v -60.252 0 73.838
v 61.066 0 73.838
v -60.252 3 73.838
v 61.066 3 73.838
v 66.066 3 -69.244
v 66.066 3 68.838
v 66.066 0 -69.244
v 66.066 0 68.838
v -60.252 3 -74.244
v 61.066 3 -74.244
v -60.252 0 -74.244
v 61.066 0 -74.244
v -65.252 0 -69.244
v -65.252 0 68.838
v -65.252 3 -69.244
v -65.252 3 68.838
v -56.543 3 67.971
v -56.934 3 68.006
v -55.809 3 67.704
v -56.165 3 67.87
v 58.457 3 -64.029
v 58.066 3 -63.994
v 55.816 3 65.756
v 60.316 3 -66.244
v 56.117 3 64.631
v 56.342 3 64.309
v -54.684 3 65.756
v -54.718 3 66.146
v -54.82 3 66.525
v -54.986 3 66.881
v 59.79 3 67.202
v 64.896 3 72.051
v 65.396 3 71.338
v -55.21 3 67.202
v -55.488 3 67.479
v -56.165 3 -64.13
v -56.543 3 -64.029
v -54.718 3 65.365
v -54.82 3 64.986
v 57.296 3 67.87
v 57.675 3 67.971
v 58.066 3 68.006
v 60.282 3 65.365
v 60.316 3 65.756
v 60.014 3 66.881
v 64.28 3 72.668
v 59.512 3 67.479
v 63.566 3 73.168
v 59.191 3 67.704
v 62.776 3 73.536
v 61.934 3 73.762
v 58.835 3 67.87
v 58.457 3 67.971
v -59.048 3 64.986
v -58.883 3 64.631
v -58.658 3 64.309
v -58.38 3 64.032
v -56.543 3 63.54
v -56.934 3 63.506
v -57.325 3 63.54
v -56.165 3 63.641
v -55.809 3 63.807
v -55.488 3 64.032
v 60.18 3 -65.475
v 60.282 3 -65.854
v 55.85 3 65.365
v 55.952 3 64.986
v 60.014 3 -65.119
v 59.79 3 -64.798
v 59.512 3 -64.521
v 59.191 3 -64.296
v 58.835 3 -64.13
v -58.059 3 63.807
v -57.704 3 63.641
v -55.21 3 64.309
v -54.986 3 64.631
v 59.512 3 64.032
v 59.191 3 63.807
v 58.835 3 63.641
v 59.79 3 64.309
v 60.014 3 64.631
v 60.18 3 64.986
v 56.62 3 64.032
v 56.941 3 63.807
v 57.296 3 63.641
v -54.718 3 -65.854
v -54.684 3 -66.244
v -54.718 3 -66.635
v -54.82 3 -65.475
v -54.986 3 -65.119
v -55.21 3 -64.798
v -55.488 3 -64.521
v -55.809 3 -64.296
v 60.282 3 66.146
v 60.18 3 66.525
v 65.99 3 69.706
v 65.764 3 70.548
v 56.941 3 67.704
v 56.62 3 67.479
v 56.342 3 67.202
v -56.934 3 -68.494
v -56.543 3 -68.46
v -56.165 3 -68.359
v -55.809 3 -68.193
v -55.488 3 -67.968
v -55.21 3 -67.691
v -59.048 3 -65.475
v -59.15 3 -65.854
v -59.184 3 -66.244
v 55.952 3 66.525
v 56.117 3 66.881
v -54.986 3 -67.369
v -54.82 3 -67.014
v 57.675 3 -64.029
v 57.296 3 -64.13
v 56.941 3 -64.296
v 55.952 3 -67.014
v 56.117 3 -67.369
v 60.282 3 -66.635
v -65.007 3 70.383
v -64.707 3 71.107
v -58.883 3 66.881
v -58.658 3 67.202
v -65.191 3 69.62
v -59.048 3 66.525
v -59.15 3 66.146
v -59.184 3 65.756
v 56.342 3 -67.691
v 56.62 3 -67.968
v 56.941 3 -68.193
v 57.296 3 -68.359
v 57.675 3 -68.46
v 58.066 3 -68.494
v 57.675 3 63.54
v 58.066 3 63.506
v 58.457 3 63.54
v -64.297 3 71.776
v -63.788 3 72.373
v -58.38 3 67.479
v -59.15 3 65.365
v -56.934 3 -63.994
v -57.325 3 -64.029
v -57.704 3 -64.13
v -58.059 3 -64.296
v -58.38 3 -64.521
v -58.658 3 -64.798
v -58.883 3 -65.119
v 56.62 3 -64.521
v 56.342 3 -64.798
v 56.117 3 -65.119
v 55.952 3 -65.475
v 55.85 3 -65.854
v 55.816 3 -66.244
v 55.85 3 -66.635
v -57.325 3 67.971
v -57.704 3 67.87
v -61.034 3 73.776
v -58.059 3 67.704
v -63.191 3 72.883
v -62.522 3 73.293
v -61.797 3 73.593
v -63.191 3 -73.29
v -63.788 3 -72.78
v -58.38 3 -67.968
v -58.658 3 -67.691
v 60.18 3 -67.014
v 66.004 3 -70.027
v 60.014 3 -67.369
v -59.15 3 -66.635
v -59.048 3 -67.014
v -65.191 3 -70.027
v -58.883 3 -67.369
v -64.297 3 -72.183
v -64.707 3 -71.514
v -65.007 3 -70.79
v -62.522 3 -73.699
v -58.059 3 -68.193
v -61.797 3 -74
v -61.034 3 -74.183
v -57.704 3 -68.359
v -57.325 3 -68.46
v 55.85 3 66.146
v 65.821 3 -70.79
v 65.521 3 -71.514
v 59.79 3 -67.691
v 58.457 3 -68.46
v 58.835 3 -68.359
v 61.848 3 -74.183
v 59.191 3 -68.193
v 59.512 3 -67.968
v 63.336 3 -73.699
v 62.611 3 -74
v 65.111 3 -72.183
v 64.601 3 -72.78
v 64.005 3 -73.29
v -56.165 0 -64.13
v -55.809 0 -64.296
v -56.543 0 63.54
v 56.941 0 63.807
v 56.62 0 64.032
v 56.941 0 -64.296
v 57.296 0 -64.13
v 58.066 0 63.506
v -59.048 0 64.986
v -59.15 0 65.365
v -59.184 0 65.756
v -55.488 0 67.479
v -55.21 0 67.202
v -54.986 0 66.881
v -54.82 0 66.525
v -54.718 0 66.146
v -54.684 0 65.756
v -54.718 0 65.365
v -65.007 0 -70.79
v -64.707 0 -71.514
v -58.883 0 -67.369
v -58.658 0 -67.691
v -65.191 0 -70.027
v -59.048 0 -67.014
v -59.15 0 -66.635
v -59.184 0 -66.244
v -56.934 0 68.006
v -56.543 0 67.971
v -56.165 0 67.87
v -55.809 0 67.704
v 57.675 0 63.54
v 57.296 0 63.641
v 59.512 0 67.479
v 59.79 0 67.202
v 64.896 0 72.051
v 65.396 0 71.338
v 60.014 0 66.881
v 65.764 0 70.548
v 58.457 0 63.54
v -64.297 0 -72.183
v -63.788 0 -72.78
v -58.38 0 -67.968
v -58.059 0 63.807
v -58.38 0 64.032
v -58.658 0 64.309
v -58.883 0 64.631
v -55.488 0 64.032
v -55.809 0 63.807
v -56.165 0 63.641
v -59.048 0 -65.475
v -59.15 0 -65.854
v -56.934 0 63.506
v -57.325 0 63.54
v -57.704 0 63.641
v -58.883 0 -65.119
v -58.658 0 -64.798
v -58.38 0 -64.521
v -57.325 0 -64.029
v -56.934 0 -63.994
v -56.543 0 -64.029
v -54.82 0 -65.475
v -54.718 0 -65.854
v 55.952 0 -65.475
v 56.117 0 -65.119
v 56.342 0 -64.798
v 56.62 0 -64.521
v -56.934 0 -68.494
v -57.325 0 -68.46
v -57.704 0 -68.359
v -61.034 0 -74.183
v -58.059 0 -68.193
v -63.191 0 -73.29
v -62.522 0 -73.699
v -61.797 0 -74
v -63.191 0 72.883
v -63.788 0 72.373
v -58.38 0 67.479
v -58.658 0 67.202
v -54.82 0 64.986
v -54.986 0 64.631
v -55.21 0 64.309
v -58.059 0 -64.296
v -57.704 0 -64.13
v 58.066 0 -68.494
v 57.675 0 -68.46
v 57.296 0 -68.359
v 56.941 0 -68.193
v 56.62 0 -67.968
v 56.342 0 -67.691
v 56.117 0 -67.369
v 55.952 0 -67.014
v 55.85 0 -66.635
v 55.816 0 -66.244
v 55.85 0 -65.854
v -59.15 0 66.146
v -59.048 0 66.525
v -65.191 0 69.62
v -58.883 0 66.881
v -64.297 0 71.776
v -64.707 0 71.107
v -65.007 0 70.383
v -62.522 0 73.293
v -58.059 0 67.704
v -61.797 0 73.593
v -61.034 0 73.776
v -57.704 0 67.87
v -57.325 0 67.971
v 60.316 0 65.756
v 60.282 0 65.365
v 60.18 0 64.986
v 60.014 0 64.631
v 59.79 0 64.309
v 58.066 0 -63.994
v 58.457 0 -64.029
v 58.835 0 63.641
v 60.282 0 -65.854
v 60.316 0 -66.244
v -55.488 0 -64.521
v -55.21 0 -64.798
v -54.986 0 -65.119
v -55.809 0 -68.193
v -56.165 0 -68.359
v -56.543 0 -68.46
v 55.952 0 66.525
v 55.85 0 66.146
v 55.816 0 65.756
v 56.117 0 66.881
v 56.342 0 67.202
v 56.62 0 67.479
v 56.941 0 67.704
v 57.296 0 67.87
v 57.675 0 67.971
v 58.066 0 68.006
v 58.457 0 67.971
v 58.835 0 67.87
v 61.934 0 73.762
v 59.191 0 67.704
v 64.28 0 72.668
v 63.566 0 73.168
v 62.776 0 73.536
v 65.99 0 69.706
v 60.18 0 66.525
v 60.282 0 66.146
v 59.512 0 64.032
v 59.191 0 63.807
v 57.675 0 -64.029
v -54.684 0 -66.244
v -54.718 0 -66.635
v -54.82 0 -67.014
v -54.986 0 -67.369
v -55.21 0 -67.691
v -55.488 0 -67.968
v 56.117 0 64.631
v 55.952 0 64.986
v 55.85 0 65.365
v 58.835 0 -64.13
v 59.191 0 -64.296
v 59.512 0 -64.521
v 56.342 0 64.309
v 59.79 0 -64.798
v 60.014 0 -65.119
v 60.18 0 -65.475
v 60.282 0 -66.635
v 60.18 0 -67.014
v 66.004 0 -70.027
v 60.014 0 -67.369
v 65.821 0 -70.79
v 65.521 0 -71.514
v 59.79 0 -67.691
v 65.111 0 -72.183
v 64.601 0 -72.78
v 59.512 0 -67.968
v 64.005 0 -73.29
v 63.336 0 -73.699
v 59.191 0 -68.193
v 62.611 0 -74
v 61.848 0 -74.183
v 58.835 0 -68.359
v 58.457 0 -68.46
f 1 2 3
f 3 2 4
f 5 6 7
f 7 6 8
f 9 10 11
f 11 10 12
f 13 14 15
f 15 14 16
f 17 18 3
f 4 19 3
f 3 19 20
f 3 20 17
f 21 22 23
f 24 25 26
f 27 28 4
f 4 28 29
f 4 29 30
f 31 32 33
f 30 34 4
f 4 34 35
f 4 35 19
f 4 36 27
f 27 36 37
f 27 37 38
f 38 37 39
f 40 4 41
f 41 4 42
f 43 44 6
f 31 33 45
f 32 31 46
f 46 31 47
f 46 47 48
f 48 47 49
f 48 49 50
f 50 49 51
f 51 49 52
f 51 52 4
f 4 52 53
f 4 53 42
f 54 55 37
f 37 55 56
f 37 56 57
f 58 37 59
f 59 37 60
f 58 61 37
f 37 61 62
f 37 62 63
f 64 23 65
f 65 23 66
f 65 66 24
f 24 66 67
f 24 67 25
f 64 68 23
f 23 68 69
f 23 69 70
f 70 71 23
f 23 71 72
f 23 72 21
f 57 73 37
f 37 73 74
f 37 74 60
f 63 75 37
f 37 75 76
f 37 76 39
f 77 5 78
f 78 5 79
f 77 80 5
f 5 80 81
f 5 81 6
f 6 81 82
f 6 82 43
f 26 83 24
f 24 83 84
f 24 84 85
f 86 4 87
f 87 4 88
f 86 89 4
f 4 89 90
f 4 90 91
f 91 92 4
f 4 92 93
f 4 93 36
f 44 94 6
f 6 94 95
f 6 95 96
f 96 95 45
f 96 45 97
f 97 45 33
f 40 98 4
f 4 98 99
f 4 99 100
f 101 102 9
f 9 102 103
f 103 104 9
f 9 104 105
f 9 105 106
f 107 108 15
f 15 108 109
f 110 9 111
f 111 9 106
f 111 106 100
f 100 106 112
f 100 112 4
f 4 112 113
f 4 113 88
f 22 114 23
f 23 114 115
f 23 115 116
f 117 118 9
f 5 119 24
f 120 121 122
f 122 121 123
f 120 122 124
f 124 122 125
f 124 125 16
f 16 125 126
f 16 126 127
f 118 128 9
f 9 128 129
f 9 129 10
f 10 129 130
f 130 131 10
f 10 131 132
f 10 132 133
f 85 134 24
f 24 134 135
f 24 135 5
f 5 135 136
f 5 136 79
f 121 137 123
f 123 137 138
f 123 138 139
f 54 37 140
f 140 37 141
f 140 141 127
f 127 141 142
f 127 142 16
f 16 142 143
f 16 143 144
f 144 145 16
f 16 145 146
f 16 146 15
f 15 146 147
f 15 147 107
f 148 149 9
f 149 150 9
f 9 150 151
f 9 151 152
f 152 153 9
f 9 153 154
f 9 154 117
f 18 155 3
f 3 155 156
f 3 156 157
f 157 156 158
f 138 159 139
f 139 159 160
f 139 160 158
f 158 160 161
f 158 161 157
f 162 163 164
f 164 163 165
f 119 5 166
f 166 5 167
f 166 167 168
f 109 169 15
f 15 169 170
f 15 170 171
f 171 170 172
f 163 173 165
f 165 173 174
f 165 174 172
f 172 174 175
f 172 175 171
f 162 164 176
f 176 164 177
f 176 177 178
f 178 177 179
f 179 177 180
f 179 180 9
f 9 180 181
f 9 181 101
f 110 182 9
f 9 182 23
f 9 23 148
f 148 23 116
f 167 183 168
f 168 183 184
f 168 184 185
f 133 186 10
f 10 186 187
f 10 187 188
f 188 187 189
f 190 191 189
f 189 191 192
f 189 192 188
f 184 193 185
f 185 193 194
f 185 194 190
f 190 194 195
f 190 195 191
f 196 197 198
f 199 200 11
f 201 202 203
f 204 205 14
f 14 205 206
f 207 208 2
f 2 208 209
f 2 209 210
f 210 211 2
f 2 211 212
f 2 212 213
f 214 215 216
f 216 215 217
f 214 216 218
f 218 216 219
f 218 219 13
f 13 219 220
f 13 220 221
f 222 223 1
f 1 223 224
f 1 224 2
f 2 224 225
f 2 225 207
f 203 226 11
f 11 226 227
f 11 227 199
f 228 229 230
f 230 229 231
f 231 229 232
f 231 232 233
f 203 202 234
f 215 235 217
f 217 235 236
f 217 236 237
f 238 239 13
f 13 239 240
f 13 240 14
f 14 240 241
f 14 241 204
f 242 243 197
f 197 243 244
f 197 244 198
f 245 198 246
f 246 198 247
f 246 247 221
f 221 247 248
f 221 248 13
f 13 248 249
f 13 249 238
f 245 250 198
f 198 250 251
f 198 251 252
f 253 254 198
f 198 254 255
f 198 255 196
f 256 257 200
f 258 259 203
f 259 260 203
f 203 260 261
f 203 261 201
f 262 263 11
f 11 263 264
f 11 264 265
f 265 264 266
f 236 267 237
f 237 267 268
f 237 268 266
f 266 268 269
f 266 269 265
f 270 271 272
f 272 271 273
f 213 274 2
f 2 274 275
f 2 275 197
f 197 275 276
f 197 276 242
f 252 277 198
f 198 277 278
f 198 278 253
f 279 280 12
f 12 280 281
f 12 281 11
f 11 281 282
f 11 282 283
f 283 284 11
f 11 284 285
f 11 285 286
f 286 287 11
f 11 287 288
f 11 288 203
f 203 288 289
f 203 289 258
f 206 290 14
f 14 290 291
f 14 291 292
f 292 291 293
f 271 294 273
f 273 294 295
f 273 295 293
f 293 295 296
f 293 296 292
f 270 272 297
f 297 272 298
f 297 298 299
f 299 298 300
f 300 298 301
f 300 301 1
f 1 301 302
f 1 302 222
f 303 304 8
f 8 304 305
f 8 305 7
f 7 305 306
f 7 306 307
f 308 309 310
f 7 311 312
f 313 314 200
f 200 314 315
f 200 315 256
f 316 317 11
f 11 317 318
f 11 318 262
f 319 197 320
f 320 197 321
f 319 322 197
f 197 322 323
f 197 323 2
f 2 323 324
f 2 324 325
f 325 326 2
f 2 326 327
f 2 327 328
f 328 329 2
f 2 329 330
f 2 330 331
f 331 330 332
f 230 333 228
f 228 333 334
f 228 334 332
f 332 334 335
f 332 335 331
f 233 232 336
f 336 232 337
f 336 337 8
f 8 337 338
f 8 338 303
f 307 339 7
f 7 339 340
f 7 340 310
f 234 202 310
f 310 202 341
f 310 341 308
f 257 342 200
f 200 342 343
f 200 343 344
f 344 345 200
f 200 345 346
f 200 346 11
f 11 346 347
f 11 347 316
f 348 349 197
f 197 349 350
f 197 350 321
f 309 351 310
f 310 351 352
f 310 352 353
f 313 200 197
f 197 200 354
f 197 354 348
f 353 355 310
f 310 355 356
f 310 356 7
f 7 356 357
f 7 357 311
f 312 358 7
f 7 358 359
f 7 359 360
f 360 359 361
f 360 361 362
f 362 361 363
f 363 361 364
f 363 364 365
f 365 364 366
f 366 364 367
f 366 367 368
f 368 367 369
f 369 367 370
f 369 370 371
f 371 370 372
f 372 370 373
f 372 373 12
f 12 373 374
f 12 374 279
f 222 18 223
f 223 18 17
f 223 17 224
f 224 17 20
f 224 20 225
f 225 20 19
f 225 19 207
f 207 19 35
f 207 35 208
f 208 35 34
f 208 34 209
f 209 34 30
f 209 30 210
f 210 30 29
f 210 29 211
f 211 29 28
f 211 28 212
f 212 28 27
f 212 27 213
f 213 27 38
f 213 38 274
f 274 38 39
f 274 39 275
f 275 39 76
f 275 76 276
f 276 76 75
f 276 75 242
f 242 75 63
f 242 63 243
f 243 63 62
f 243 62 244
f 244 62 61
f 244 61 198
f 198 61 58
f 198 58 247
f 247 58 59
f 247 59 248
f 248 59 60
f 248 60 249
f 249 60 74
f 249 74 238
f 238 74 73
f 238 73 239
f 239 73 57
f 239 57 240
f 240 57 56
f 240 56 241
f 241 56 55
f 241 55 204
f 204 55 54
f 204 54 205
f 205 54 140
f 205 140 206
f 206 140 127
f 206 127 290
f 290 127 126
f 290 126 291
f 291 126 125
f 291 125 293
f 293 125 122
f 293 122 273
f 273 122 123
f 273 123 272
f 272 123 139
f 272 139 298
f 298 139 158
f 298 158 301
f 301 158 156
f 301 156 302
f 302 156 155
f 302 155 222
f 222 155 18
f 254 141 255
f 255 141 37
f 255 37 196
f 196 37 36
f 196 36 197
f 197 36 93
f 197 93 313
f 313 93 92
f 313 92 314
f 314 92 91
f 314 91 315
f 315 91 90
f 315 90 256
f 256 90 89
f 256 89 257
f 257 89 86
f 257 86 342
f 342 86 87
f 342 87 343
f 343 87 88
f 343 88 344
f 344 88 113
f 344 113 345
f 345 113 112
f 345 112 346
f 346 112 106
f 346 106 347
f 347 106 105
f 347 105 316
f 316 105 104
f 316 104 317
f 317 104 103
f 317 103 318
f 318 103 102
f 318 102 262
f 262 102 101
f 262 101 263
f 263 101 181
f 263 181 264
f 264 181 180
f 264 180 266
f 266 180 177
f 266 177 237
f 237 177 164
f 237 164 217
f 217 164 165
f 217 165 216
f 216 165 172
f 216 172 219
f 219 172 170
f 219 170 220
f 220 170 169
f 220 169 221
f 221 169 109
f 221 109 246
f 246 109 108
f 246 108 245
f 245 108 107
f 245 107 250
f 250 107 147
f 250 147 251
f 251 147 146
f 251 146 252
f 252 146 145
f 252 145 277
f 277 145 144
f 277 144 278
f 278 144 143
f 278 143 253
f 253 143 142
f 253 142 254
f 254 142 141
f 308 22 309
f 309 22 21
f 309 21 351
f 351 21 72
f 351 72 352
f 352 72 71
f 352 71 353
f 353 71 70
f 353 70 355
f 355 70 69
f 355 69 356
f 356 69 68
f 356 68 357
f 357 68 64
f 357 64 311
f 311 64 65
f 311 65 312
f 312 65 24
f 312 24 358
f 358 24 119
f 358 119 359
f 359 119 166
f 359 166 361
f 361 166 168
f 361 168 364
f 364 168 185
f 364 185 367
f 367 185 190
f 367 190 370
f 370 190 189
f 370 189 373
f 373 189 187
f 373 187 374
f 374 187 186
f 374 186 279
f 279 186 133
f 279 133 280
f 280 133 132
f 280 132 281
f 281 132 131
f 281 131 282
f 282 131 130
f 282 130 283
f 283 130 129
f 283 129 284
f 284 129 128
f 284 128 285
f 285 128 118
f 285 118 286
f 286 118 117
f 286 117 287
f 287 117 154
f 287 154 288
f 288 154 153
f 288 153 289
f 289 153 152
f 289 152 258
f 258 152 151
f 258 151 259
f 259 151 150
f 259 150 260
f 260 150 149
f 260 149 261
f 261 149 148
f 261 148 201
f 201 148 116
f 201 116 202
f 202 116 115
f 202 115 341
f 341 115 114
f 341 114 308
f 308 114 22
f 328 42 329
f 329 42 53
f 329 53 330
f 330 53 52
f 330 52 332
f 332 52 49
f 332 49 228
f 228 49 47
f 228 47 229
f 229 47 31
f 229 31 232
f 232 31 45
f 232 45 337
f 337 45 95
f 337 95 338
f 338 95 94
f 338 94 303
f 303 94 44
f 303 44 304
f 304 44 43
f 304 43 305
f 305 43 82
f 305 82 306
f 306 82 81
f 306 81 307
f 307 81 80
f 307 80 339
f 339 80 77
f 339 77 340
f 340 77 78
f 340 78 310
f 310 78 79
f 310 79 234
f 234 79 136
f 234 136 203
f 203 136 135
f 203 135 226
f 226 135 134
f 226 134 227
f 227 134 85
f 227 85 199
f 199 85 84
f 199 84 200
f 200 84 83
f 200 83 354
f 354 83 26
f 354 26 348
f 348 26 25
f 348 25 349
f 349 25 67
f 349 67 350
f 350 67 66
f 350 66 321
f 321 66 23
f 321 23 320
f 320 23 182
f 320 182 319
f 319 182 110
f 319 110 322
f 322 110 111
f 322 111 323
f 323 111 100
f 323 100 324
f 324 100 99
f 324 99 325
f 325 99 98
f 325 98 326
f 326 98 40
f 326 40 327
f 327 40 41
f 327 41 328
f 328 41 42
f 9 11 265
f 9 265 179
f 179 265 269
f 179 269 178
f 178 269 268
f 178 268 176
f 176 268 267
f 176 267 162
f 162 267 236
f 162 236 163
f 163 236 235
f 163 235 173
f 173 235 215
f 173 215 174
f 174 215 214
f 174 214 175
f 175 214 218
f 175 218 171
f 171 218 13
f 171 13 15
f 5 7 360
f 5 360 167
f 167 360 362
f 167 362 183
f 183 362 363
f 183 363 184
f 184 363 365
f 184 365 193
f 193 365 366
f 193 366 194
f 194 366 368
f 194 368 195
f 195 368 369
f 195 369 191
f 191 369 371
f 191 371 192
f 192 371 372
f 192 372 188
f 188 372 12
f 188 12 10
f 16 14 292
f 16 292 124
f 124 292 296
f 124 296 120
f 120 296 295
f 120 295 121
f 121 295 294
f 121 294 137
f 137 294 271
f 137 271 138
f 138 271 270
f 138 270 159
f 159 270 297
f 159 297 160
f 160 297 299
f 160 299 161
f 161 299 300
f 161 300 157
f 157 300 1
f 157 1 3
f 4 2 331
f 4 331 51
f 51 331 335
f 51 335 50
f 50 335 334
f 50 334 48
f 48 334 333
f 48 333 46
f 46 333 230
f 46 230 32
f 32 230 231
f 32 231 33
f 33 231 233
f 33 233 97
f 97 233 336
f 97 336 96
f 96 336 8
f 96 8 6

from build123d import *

# Parameters (mm, degrees)
SKETCH1_W           = 131.318
SKETCH1_H           = 148.082
BOSS_EXTRUDE1_DEPTH = 3
SKETCH2_R           = 2.25
CUT_EXTRUDE1_DEPTH  = 4
FILLET1_R           = 5


with BuildPart() as part:
    # Sketch1 → Boss-Extrude1 (new body)
    with BuildSketch(Plane(origin=(0, 0, 0), x_dir=(1, 0, 0), z_dir=(0, 1, 0))):
        with Locations((0.406931424, 0.203465712)):
            Rectangle(SKETCH1_W, SKETCH1_H)
    extrude(amount=BOSS_EXTRUDE1_DEPTH)

    # Sketch2 → Cut-Extrude1 (cut, through all)
    with BuildSketch(Plane(origin=(0, 3, 0), x_dir=(1, 0, 0), z_dir=(0, 1, 0))):
        with Locations((-56.934068576, -65.755534288)):
            Circle(SKETCH2_R)
        with Locations((-56.934068576, 66.244465712)):
            Circle(SKETCH2_R)
        with Locations((58.065931424, 66.244465712)):
            Circle(SKETCH2_R)
        with Locations((58.065931424, -65.755534288)):
            Circle(SKETCH2_R)
    extrude(amount=-CUT_EXTRUDE1_DEPTH, mode=Mode.SUBTRACT)

    # Fillet1
    fillet1_edges = [part.edges().sort_by_distance(p)[0] for p in [
        (-65.252068576, 1.5, 73.837534288),
        (-65.252068576, 1.5, -74.244465712),
        (66.065931424, 1.5, -74.244465712),
        (66.065931424, 1.5, 73.837534288),
    ]]
    fillet(fillet1_edges, radius=FILLET1_R)


solid = part.part
